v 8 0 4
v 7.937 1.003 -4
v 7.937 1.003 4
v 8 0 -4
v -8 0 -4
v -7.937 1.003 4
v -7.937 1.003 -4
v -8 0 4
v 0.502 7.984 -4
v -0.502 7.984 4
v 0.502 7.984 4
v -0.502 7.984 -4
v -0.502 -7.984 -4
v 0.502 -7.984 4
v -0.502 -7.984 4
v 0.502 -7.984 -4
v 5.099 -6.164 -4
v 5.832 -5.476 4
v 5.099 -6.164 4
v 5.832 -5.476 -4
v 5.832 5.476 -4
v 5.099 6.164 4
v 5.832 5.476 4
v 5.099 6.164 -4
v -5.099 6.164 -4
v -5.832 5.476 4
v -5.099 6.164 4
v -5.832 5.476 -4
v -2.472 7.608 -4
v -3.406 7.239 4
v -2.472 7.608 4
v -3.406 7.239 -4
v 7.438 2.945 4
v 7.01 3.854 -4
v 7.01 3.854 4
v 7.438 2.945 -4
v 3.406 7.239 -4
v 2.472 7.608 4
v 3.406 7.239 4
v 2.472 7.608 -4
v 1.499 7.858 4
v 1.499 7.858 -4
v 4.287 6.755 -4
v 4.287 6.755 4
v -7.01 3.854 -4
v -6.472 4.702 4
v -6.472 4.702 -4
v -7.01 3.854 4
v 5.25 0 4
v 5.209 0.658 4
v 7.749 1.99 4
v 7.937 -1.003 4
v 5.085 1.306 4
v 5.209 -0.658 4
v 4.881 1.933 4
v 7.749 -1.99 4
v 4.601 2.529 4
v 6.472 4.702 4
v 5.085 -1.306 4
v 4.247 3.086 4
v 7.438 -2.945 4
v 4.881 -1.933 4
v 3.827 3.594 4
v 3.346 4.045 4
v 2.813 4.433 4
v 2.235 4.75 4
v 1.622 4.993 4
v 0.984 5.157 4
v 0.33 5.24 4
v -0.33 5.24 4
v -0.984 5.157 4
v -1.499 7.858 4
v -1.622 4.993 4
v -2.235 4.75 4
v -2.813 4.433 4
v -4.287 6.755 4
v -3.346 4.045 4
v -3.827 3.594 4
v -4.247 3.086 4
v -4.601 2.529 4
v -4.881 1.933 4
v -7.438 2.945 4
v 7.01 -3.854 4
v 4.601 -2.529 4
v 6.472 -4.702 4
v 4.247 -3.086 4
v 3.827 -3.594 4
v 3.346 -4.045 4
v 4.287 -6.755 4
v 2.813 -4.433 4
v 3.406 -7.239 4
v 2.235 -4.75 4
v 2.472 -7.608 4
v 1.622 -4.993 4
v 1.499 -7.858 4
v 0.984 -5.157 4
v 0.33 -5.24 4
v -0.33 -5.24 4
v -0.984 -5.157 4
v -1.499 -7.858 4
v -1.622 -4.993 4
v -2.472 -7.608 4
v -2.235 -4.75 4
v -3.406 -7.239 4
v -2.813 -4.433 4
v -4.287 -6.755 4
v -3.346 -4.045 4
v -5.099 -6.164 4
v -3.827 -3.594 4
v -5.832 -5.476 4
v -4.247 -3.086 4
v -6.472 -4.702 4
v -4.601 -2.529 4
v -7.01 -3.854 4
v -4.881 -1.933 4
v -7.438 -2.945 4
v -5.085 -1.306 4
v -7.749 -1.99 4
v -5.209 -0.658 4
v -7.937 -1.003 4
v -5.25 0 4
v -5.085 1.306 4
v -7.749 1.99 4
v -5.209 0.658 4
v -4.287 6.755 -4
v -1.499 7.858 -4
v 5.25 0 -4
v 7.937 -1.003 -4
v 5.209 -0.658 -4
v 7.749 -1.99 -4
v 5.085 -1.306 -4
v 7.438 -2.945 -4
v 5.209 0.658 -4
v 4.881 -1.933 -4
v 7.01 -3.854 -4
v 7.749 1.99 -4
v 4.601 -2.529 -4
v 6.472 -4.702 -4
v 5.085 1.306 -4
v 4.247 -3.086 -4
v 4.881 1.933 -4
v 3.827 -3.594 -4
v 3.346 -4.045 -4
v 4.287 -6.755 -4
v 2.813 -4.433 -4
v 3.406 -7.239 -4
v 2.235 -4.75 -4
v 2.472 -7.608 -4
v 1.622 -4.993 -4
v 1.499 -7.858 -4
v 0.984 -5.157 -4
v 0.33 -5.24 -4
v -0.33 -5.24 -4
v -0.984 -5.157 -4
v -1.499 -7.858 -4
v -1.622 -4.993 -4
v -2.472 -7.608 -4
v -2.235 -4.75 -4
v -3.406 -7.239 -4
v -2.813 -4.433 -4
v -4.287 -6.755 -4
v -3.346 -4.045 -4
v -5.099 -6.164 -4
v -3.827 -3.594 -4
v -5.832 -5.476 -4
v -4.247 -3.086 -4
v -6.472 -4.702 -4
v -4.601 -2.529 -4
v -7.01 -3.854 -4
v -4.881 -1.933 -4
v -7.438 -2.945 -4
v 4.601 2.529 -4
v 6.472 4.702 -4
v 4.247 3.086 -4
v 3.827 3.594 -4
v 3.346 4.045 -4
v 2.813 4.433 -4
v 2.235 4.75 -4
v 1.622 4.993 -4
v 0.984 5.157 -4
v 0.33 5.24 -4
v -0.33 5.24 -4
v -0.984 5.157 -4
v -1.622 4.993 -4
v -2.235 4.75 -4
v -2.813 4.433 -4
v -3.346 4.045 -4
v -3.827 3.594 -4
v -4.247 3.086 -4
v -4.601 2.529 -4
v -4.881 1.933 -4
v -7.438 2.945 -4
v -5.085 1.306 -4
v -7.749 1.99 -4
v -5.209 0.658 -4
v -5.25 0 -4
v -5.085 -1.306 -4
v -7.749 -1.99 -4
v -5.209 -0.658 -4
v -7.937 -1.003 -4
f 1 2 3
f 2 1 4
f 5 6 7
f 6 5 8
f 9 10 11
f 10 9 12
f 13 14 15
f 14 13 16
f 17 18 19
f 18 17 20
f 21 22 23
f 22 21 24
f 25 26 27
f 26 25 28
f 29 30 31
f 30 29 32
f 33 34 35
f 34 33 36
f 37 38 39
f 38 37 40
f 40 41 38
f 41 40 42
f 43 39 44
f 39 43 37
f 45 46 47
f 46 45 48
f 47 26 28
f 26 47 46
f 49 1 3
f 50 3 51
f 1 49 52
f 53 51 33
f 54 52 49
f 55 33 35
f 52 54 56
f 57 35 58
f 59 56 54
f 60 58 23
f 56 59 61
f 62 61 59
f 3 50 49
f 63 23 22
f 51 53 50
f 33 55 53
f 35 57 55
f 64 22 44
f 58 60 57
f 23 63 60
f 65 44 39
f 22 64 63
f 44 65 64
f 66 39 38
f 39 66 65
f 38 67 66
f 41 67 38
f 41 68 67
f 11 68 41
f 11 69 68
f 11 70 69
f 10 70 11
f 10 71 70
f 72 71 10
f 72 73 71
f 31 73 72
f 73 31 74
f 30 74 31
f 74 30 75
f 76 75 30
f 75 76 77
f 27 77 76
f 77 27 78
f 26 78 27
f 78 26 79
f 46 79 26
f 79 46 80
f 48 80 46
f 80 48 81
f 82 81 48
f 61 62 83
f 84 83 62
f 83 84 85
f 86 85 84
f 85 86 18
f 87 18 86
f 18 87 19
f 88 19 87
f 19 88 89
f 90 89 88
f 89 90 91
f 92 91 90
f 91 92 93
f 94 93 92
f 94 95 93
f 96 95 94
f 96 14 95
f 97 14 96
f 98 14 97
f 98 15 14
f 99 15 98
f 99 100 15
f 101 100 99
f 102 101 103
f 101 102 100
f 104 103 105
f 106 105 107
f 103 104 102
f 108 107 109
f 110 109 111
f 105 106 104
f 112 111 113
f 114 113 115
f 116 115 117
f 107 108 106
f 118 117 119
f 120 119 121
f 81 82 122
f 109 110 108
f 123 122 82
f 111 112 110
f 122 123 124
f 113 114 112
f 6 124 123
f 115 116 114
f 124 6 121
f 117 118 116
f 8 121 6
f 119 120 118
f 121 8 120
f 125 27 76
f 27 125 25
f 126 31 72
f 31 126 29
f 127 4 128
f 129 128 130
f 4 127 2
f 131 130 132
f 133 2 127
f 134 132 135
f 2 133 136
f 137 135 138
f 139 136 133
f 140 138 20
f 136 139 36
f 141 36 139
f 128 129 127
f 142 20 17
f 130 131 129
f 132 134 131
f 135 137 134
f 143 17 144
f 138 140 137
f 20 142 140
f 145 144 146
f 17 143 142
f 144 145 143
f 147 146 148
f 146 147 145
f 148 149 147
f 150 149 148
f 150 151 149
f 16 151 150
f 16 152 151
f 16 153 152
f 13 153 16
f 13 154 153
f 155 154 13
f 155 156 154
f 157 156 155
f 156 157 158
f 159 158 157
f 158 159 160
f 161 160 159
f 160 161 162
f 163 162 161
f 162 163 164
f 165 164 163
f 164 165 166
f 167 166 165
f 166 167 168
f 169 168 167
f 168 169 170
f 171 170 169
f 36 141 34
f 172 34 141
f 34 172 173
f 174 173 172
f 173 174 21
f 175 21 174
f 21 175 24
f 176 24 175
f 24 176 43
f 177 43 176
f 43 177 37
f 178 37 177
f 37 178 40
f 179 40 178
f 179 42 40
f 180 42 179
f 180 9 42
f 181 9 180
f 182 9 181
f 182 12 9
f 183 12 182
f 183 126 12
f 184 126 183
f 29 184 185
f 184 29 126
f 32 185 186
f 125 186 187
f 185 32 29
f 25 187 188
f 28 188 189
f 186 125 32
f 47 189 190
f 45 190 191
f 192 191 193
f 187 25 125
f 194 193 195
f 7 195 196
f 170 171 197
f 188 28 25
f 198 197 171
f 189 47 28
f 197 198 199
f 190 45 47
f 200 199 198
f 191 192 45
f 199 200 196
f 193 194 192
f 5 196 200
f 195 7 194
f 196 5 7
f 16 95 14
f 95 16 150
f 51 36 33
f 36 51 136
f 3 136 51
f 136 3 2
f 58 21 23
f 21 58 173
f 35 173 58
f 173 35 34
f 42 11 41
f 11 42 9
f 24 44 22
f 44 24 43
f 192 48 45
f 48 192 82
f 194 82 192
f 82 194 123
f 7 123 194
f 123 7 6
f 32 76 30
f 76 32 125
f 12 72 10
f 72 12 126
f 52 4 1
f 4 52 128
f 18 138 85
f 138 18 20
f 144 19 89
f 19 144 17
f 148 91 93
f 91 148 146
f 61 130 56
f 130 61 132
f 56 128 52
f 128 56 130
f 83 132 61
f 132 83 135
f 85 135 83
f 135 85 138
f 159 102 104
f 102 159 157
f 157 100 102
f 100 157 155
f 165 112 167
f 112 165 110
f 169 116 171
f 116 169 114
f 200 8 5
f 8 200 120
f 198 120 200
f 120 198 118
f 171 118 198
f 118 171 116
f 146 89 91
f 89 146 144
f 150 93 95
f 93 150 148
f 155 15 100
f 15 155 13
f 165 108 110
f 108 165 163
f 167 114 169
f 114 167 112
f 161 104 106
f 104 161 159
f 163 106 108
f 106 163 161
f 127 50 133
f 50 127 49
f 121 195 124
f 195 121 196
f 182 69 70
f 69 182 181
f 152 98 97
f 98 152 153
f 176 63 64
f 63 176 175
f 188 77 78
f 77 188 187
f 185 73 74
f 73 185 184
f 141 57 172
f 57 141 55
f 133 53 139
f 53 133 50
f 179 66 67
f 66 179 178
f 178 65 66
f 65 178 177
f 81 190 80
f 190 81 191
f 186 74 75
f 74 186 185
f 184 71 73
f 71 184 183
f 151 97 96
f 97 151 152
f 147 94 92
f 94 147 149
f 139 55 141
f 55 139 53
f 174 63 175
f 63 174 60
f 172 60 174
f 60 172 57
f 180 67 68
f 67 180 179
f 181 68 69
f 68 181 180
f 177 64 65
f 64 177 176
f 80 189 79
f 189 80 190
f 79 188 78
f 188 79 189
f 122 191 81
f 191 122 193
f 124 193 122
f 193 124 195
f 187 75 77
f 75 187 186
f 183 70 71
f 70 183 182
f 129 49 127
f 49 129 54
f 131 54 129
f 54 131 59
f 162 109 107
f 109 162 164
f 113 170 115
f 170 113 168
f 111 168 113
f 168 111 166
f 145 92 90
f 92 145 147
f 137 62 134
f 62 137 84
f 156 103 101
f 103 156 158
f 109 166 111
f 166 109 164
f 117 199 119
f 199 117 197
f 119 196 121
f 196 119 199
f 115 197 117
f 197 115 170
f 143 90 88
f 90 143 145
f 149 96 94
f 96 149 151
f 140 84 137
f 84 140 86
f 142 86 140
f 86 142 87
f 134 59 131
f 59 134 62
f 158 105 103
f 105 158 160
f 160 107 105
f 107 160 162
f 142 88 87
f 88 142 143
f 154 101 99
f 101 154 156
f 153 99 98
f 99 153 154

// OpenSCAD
$fn = 50;


difference() {
	union() {
		translate(v = [0, 0, -4.0000000000]) {
			cylinder(h = 8, r = 8.0000000000);
		}
	}
	union() {
		translate(v = [0, 0, -100.0000000000]) {
			cylinder(h = 200, r = 5.2500000000);
		}
	}
}
